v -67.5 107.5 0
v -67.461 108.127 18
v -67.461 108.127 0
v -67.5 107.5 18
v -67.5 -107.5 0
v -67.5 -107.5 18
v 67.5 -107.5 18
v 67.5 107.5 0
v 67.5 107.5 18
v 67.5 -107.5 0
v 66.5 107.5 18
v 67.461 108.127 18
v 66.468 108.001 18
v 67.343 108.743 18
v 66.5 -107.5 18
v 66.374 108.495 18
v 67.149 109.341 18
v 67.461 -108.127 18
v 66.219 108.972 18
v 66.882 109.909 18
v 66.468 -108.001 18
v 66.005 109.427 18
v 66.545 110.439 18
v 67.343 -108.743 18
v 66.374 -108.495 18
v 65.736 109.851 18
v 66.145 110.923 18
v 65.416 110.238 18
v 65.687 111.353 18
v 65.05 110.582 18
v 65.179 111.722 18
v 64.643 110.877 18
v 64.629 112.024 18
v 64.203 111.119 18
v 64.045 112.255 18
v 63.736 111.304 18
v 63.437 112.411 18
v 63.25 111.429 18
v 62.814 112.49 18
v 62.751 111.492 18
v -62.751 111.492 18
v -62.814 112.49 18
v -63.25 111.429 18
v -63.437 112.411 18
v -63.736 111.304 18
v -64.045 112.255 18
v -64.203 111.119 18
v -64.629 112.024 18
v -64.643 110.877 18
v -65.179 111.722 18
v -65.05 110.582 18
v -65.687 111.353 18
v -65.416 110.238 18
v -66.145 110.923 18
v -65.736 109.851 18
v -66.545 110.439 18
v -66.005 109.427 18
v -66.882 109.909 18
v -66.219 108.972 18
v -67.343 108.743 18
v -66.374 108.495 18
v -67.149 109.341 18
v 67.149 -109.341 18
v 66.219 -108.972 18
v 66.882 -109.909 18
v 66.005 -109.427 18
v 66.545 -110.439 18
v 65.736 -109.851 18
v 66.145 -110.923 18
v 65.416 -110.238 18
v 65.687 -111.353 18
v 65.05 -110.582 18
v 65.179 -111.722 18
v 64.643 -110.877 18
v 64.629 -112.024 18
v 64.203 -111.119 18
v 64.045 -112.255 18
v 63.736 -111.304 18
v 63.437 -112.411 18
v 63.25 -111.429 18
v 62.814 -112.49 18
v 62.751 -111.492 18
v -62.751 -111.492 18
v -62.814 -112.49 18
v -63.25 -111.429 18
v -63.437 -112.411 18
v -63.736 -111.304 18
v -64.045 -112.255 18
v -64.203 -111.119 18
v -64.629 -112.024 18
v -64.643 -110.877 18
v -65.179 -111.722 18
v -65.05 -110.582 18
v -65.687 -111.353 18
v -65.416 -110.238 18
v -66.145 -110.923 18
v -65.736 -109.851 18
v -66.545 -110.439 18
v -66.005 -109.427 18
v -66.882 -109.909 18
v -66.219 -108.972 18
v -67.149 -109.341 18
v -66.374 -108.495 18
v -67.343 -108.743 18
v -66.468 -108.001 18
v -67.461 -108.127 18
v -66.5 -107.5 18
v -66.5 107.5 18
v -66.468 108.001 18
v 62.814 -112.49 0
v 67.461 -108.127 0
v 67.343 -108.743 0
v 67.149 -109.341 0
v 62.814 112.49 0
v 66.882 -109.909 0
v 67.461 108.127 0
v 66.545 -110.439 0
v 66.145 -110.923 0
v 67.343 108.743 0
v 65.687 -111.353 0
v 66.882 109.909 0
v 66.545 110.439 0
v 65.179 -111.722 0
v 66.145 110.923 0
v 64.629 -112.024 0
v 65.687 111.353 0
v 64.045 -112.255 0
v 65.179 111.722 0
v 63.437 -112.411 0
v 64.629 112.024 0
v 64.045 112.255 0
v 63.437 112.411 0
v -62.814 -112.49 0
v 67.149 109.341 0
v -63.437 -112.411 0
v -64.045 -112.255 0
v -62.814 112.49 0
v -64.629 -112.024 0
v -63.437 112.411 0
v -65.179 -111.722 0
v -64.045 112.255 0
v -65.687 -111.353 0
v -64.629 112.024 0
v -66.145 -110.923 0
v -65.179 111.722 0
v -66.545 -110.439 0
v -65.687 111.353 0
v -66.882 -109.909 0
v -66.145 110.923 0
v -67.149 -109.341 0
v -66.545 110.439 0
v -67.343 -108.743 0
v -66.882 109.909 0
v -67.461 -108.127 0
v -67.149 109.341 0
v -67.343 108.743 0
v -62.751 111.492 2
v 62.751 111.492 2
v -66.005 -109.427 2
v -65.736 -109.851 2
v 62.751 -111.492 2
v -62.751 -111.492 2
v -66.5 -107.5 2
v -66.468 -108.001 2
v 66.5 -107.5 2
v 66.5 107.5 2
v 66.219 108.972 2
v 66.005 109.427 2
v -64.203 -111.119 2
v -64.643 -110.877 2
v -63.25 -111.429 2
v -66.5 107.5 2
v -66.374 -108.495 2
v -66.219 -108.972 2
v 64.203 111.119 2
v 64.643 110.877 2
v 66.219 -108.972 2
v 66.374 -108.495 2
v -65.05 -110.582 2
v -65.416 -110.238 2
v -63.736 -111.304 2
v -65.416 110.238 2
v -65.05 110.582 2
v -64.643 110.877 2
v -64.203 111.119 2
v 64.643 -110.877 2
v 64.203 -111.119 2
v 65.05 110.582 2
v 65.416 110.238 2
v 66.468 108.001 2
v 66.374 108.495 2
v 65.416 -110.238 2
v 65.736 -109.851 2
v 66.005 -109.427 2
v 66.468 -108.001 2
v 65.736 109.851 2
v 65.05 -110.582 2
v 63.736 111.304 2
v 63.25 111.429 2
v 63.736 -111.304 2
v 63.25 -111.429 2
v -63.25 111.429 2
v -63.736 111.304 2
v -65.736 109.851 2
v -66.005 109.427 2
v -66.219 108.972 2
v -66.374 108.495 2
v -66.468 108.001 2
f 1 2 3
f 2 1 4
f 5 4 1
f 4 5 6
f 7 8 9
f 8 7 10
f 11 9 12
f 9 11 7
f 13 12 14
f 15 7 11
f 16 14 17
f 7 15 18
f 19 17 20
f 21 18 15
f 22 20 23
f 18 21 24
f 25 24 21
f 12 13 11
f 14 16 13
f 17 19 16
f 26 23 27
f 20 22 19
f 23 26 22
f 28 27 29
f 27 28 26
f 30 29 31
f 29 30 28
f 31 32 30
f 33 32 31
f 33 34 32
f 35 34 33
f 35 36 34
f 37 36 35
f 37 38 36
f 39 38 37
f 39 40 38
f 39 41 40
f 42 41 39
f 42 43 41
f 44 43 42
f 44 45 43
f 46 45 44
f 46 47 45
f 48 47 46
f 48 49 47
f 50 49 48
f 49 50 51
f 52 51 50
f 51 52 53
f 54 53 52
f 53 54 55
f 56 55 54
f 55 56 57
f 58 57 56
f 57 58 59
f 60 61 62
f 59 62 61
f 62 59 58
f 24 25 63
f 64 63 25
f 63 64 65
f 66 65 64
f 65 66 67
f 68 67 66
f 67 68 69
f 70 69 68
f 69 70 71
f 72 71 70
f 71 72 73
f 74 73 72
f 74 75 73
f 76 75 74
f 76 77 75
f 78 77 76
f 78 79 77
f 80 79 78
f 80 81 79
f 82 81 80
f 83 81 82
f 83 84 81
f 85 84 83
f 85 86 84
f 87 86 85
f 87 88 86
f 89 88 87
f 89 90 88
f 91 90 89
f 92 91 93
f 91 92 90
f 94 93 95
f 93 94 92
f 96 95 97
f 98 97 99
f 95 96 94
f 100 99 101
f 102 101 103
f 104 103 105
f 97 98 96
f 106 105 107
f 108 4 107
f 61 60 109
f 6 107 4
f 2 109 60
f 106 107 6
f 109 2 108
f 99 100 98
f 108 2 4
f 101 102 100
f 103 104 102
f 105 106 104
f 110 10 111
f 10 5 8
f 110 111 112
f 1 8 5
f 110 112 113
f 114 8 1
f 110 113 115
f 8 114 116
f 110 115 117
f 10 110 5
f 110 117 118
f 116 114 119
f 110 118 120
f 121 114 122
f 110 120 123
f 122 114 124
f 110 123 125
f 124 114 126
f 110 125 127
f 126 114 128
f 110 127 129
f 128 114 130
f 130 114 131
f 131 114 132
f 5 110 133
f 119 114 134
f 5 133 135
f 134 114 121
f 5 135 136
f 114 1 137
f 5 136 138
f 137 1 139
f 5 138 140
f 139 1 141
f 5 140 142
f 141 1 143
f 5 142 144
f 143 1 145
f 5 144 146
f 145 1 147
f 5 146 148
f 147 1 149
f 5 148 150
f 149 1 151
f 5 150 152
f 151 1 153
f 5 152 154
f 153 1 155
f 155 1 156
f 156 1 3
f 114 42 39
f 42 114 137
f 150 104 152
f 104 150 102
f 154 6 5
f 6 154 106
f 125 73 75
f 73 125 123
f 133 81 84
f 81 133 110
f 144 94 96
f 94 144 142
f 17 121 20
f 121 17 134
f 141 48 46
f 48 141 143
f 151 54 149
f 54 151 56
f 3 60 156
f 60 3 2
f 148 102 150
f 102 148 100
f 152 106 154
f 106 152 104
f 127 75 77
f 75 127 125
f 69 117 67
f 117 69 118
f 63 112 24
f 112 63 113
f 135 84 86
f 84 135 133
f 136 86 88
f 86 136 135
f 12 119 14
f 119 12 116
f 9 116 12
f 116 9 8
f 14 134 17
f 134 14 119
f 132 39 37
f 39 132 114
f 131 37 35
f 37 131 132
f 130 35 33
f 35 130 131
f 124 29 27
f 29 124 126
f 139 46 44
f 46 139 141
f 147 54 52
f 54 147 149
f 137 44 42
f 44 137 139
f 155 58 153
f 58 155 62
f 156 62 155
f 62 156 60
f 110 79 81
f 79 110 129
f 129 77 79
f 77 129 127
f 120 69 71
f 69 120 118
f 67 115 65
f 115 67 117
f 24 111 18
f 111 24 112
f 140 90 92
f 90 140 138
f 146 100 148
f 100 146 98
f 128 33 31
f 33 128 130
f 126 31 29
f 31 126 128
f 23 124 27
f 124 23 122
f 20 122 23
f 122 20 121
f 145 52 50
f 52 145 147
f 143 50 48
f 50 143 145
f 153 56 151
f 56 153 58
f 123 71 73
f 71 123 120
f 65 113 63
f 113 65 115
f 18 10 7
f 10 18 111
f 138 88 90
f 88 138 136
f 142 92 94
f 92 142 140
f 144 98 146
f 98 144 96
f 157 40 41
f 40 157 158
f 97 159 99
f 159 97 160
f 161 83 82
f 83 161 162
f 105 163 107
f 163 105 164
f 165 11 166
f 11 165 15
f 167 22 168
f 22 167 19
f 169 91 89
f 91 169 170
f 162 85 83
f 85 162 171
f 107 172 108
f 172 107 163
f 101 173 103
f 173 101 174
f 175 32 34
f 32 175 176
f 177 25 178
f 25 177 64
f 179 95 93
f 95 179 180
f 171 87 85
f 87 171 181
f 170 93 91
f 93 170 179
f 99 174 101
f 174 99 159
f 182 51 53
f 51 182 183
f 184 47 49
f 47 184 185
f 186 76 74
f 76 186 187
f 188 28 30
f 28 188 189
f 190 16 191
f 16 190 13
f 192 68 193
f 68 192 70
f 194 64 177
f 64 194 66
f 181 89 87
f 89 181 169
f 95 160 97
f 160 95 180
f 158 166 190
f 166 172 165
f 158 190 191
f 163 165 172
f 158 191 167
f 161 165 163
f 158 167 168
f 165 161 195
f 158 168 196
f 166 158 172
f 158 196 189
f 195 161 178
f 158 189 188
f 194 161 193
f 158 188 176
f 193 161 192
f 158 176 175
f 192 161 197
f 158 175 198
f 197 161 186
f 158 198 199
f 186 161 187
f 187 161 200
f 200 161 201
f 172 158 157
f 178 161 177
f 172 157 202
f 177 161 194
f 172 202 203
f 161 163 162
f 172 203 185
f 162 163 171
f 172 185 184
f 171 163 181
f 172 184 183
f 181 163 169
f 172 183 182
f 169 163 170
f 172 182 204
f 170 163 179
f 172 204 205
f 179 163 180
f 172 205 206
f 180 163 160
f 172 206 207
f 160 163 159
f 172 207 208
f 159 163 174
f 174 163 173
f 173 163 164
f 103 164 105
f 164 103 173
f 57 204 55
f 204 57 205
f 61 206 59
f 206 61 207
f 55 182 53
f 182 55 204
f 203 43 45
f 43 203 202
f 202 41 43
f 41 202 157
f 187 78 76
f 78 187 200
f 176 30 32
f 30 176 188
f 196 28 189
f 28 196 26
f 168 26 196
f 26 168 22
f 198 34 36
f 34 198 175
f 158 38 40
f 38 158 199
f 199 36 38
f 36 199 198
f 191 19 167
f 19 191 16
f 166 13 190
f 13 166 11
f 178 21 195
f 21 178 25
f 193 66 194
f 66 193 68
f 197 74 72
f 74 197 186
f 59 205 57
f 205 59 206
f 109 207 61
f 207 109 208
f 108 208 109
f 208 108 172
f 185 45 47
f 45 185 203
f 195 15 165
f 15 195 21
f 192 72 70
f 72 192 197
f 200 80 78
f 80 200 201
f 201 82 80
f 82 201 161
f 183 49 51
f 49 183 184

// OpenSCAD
$fn = 50;


difference() {
	union() {
		hull() {
			translate(v = [-62.5000000000, 107.5000000000, 0]) {
				cylinder(h = 18, r = 5);
			}
			translate(v = [62.5000000000, 107.5000000000, 0]) {
				cylinder(h = 18, r = 5);
			}
			translate(v = [-62.5000000000, -107.5000000000, 0]) {
				cylinder(h = 18, r = 5);
			}
			translate(v = [62.5000000000, -107.5000000000, 0]) {
				cylinder(h = 18, r = 5);
			}
		}
	}
	union() {
		translate(v = [0, 0, 2]) {
			hull() {
				translate(v = [-62.5000000000, 107.5000000000, 0]) {
					cylinder(h = 16, r = 4);
				}
				translate(v = [62.5000000000, 107.5000000000, 0]) {
					cylinder(h = 16, r = 4);
				}
				translate(v = [-62.5000000000, -107.5000000000, 0]) {
					cylinder(h = 16, r = 4);
				}
				translate(v = [62.5000000000, -107.5000000000, 0]) {
					cylinder(h = 16, r = 4);
				}
			}
		}
	}
}
